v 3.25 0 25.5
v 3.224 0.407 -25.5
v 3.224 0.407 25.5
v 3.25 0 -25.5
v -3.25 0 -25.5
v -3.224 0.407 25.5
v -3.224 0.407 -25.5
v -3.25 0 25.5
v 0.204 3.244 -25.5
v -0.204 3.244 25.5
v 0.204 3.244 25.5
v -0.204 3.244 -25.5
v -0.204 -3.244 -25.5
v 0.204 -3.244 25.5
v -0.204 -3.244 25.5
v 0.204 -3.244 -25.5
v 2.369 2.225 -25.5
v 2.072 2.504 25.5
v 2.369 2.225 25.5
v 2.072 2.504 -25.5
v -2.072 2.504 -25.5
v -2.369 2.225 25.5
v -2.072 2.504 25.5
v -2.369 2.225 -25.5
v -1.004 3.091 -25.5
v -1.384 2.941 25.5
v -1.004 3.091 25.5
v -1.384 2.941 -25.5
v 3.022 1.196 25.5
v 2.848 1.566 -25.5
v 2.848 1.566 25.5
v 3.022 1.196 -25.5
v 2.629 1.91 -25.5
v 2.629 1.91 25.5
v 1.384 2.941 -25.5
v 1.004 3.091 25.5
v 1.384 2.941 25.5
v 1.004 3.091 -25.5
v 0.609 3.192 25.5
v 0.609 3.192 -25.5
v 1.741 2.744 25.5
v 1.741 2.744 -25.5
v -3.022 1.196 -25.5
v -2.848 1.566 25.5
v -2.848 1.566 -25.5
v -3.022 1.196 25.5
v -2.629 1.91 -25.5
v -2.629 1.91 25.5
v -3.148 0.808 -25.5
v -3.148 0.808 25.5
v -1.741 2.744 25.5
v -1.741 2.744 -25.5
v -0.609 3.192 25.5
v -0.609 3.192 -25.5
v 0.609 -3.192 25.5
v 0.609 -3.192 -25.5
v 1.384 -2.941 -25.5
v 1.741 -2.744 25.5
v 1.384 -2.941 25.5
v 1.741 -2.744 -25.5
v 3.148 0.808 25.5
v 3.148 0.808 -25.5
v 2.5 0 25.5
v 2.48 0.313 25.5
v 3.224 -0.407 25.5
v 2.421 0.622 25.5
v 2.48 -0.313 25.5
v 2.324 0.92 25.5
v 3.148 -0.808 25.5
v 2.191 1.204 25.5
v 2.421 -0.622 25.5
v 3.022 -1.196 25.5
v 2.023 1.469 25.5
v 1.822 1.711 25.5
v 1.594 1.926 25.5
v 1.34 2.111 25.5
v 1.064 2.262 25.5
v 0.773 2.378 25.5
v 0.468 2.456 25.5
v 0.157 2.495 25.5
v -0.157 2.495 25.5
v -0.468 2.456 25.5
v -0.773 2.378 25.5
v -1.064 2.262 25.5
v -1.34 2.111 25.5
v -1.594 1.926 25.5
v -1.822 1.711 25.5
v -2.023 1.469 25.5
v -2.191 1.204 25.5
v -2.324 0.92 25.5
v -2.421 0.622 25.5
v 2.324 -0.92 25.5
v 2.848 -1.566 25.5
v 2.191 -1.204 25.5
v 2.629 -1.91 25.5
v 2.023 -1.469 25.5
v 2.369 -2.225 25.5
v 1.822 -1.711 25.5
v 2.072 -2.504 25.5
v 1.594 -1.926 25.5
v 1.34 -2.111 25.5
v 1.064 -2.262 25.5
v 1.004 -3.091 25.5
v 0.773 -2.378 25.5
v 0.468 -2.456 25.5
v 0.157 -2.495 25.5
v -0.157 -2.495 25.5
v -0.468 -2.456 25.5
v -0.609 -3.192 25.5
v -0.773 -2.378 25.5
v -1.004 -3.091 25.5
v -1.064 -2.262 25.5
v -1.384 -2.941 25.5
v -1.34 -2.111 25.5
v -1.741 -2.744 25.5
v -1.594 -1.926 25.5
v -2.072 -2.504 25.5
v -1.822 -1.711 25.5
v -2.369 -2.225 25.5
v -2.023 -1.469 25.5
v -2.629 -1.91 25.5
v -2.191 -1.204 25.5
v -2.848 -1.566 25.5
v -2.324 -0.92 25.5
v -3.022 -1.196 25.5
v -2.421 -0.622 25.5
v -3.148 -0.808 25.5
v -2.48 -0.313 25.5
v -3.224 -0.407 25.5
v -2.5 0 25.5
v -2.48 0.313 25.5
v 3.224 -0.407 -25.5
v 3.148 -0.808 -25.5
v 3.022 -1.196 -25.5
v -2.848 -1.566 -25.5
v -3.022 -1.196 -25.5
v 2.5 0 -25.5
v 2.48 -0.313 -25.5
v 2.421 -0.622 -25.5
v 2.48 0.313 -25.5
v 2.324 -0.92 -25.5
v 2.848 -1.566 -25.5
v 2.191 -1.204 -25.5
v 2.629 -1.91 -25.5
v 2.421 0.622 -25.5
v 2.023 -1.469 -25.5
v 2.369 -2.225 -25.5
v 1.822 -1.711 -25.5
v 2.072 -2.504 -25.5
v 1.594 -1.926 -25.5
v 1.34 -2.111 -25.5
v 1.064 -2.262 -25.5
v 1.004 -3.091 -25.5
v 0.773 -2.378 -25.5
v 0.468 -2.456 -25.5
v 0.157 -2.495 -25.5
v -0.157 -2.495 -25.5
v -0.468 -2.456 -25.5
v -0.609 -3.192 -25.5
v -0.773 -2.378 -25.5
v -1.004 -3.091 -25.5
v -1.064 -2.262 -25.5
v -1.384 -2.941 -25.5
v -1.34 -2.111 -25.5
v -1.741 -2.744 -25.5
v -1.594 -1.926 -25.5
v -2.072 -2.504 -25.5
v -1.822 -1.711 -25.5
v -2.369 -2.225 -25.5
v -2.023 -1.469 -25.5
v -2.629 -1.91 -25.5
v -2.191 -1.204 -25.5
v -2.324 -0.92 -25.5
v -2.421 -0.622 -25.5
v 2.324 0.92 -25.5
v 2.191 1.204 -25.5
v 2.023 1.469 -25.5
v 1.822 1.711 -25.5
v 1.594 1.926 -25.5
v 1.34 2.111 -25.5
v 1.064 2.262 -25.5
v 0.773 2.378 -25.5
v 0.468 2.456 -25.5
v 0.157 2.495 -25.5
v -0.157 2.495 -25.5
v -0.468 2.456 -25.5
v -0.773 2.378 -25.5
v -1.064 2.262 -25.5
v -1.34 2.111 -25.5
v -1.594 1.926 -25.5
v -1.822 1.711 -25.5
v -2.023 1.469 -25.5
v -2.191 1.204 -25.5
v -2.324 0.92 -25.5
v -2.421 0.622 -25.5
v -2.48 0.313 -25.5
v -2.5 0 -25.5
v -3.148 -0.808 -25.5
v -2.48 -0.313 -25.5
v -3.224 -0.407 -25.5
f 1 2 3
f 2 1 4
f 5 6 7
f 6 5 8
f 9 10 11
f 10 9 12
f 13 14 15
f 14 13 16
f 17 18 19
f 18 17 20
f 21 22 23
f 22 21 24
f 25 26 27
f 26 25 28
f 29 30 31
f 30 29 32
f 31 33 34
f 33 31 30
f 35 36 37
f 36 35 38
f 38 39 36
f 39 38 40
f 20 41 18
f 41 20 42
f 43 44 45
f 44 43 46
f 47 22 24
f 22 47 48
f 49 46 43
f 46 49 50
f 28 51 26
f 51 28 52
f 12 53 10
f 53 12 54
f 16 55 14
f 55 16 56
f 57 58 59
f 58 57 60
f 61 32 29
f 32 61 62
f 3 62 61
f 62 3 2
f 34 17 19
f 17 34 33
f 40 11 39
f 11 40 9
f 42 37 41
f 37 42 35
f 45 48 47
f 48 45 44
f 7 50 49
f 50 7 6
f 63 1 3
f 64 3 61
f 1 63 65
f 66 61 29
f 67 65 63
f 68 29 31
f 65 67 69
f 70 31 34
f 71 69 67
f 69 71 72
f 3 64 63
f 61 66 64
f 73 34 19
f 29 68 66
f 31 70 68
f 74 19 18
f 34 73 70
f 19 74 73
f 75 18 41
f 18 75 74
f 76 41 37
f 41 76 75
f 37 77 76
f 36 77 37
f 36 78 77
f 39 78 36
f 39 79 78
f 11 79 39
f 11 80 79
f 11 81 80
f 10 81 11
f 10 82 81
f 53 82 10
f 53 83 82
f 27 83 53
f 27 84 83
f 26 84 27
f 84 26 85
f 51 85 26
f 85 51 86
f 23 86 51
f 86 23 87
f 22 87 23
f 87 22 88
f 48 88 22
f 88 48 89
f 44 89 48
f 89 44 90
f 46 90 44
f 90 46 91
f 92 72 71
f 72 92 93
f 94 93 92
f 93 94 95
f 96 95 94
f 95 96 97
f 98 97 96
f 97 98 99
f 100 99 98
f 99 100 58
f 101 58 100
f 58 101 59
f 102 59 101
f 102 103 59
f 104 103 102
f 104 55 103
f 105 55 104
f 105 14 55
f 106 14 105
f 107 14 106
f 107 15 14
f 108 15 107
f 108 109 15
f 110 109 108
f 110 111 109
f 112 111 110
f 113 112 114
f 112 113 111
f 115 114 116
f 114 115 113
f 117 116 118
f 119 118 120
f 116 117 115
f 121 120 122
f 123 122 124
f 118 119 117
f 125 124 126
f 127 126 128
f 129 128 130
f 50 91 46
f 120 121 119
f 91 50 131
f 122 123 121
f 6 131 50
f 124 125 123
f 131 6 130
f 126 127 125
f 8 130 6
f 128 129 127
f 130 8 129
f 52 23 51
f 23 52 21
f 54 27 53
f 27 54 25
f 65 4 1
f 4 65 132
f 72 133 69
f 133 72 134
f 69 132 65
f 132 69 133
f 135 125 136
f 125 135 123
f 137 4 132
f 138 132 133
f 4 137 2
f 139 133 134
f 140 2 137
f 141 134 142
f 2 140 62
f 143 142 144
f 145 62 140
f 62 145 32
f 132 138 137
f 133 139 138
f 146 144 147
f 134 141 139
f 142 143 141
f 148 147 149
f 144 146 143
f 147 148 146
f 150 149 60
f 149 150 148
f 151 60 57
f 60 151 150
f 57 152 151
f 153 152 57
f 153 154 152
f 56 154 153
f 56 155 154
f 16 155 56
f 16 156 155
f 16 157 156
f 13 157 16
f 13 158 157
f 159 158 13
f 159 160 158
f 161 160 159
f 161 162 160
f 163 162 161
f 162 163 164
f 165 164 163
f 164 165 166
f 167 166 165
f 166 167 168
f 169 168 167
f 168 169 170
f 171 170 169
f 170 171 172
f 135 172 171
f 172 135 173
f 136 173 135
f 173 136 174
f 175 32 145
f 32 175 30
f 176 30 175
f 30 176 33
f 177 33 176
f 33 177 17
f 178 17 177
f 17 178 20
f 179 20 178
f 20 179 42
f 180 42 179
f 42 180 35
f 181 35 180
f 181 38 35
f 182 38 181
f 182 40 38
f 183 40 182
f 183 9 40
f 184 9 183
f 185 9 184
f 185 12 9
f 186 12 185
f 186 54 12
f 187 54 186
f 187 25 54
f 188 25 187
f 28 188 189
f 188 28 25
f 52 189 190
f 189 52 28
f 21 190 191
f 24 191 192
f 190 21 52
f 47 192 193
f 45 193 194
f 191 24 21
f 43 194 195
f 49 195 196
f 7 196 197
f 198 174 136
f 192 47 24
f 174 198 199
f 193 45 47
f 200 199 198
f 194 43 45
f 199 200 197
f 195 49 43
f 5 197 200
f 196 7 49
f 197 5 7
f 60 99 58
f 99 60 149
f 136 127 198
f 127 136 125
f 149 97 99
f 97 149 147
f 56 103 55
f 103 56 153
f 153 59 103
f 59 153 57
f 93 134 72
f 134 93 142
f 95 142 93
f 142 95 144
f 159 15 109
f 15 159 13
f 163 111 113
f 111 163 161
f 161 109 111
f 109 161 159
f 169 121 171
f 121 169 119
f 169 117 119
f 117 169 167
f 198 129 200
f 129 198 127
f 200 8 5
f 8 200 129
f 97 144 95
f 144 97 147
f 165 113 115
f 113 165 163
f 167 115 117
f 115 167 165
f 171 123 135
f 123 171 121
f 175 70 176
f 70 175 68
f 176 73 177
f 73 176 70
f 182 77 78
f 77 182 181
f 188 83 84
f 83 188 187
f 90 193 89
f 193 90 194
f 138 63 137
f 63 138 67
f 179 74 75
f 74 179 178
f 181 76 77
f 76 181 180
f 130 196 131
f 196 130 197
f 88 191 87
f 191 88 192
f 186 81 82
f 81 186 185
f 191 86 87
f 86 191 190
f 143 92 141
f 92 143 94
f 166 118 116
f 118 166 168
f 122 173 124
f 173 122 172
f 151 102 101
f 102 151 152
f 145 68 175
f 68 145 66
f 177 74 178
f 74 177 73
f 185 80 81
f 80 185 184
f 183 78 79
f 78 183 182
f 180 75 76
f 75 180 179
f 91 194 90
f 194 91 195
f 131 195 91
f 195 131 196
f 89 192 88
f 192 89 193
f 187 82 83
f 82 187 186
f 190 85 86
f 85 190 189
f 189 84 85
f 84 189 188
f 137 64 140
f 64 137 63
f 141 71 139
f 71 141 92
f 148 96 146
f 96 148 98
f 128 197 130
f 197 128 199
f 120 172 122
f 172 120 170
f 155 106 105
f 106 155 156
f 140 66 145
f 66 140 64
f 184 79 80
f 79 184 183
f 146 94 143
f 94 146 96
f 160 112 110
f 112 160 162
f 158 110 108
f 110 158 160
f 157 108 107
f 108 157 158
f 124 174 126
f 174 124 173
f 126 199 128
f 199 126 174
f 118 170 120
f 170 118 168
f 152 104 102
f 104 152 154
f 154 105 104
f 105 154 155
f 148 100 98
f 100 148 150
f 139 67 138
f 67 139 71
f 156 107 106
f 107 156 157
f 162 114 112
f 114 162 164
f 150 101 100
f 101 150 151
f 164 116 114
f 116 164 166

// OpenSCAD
$fn = 50;


difference() {
	union() {
		translate(v = [0, 0, -25.5000000000]) {
			cylinder(h = 51, r = 3.2500000000);
		}
	}
	union() {
		translate(v = [0, 0, -100.0000000000]) {
			cylinder(h = 200, r = 2.5000000000);
		}
	}
}
